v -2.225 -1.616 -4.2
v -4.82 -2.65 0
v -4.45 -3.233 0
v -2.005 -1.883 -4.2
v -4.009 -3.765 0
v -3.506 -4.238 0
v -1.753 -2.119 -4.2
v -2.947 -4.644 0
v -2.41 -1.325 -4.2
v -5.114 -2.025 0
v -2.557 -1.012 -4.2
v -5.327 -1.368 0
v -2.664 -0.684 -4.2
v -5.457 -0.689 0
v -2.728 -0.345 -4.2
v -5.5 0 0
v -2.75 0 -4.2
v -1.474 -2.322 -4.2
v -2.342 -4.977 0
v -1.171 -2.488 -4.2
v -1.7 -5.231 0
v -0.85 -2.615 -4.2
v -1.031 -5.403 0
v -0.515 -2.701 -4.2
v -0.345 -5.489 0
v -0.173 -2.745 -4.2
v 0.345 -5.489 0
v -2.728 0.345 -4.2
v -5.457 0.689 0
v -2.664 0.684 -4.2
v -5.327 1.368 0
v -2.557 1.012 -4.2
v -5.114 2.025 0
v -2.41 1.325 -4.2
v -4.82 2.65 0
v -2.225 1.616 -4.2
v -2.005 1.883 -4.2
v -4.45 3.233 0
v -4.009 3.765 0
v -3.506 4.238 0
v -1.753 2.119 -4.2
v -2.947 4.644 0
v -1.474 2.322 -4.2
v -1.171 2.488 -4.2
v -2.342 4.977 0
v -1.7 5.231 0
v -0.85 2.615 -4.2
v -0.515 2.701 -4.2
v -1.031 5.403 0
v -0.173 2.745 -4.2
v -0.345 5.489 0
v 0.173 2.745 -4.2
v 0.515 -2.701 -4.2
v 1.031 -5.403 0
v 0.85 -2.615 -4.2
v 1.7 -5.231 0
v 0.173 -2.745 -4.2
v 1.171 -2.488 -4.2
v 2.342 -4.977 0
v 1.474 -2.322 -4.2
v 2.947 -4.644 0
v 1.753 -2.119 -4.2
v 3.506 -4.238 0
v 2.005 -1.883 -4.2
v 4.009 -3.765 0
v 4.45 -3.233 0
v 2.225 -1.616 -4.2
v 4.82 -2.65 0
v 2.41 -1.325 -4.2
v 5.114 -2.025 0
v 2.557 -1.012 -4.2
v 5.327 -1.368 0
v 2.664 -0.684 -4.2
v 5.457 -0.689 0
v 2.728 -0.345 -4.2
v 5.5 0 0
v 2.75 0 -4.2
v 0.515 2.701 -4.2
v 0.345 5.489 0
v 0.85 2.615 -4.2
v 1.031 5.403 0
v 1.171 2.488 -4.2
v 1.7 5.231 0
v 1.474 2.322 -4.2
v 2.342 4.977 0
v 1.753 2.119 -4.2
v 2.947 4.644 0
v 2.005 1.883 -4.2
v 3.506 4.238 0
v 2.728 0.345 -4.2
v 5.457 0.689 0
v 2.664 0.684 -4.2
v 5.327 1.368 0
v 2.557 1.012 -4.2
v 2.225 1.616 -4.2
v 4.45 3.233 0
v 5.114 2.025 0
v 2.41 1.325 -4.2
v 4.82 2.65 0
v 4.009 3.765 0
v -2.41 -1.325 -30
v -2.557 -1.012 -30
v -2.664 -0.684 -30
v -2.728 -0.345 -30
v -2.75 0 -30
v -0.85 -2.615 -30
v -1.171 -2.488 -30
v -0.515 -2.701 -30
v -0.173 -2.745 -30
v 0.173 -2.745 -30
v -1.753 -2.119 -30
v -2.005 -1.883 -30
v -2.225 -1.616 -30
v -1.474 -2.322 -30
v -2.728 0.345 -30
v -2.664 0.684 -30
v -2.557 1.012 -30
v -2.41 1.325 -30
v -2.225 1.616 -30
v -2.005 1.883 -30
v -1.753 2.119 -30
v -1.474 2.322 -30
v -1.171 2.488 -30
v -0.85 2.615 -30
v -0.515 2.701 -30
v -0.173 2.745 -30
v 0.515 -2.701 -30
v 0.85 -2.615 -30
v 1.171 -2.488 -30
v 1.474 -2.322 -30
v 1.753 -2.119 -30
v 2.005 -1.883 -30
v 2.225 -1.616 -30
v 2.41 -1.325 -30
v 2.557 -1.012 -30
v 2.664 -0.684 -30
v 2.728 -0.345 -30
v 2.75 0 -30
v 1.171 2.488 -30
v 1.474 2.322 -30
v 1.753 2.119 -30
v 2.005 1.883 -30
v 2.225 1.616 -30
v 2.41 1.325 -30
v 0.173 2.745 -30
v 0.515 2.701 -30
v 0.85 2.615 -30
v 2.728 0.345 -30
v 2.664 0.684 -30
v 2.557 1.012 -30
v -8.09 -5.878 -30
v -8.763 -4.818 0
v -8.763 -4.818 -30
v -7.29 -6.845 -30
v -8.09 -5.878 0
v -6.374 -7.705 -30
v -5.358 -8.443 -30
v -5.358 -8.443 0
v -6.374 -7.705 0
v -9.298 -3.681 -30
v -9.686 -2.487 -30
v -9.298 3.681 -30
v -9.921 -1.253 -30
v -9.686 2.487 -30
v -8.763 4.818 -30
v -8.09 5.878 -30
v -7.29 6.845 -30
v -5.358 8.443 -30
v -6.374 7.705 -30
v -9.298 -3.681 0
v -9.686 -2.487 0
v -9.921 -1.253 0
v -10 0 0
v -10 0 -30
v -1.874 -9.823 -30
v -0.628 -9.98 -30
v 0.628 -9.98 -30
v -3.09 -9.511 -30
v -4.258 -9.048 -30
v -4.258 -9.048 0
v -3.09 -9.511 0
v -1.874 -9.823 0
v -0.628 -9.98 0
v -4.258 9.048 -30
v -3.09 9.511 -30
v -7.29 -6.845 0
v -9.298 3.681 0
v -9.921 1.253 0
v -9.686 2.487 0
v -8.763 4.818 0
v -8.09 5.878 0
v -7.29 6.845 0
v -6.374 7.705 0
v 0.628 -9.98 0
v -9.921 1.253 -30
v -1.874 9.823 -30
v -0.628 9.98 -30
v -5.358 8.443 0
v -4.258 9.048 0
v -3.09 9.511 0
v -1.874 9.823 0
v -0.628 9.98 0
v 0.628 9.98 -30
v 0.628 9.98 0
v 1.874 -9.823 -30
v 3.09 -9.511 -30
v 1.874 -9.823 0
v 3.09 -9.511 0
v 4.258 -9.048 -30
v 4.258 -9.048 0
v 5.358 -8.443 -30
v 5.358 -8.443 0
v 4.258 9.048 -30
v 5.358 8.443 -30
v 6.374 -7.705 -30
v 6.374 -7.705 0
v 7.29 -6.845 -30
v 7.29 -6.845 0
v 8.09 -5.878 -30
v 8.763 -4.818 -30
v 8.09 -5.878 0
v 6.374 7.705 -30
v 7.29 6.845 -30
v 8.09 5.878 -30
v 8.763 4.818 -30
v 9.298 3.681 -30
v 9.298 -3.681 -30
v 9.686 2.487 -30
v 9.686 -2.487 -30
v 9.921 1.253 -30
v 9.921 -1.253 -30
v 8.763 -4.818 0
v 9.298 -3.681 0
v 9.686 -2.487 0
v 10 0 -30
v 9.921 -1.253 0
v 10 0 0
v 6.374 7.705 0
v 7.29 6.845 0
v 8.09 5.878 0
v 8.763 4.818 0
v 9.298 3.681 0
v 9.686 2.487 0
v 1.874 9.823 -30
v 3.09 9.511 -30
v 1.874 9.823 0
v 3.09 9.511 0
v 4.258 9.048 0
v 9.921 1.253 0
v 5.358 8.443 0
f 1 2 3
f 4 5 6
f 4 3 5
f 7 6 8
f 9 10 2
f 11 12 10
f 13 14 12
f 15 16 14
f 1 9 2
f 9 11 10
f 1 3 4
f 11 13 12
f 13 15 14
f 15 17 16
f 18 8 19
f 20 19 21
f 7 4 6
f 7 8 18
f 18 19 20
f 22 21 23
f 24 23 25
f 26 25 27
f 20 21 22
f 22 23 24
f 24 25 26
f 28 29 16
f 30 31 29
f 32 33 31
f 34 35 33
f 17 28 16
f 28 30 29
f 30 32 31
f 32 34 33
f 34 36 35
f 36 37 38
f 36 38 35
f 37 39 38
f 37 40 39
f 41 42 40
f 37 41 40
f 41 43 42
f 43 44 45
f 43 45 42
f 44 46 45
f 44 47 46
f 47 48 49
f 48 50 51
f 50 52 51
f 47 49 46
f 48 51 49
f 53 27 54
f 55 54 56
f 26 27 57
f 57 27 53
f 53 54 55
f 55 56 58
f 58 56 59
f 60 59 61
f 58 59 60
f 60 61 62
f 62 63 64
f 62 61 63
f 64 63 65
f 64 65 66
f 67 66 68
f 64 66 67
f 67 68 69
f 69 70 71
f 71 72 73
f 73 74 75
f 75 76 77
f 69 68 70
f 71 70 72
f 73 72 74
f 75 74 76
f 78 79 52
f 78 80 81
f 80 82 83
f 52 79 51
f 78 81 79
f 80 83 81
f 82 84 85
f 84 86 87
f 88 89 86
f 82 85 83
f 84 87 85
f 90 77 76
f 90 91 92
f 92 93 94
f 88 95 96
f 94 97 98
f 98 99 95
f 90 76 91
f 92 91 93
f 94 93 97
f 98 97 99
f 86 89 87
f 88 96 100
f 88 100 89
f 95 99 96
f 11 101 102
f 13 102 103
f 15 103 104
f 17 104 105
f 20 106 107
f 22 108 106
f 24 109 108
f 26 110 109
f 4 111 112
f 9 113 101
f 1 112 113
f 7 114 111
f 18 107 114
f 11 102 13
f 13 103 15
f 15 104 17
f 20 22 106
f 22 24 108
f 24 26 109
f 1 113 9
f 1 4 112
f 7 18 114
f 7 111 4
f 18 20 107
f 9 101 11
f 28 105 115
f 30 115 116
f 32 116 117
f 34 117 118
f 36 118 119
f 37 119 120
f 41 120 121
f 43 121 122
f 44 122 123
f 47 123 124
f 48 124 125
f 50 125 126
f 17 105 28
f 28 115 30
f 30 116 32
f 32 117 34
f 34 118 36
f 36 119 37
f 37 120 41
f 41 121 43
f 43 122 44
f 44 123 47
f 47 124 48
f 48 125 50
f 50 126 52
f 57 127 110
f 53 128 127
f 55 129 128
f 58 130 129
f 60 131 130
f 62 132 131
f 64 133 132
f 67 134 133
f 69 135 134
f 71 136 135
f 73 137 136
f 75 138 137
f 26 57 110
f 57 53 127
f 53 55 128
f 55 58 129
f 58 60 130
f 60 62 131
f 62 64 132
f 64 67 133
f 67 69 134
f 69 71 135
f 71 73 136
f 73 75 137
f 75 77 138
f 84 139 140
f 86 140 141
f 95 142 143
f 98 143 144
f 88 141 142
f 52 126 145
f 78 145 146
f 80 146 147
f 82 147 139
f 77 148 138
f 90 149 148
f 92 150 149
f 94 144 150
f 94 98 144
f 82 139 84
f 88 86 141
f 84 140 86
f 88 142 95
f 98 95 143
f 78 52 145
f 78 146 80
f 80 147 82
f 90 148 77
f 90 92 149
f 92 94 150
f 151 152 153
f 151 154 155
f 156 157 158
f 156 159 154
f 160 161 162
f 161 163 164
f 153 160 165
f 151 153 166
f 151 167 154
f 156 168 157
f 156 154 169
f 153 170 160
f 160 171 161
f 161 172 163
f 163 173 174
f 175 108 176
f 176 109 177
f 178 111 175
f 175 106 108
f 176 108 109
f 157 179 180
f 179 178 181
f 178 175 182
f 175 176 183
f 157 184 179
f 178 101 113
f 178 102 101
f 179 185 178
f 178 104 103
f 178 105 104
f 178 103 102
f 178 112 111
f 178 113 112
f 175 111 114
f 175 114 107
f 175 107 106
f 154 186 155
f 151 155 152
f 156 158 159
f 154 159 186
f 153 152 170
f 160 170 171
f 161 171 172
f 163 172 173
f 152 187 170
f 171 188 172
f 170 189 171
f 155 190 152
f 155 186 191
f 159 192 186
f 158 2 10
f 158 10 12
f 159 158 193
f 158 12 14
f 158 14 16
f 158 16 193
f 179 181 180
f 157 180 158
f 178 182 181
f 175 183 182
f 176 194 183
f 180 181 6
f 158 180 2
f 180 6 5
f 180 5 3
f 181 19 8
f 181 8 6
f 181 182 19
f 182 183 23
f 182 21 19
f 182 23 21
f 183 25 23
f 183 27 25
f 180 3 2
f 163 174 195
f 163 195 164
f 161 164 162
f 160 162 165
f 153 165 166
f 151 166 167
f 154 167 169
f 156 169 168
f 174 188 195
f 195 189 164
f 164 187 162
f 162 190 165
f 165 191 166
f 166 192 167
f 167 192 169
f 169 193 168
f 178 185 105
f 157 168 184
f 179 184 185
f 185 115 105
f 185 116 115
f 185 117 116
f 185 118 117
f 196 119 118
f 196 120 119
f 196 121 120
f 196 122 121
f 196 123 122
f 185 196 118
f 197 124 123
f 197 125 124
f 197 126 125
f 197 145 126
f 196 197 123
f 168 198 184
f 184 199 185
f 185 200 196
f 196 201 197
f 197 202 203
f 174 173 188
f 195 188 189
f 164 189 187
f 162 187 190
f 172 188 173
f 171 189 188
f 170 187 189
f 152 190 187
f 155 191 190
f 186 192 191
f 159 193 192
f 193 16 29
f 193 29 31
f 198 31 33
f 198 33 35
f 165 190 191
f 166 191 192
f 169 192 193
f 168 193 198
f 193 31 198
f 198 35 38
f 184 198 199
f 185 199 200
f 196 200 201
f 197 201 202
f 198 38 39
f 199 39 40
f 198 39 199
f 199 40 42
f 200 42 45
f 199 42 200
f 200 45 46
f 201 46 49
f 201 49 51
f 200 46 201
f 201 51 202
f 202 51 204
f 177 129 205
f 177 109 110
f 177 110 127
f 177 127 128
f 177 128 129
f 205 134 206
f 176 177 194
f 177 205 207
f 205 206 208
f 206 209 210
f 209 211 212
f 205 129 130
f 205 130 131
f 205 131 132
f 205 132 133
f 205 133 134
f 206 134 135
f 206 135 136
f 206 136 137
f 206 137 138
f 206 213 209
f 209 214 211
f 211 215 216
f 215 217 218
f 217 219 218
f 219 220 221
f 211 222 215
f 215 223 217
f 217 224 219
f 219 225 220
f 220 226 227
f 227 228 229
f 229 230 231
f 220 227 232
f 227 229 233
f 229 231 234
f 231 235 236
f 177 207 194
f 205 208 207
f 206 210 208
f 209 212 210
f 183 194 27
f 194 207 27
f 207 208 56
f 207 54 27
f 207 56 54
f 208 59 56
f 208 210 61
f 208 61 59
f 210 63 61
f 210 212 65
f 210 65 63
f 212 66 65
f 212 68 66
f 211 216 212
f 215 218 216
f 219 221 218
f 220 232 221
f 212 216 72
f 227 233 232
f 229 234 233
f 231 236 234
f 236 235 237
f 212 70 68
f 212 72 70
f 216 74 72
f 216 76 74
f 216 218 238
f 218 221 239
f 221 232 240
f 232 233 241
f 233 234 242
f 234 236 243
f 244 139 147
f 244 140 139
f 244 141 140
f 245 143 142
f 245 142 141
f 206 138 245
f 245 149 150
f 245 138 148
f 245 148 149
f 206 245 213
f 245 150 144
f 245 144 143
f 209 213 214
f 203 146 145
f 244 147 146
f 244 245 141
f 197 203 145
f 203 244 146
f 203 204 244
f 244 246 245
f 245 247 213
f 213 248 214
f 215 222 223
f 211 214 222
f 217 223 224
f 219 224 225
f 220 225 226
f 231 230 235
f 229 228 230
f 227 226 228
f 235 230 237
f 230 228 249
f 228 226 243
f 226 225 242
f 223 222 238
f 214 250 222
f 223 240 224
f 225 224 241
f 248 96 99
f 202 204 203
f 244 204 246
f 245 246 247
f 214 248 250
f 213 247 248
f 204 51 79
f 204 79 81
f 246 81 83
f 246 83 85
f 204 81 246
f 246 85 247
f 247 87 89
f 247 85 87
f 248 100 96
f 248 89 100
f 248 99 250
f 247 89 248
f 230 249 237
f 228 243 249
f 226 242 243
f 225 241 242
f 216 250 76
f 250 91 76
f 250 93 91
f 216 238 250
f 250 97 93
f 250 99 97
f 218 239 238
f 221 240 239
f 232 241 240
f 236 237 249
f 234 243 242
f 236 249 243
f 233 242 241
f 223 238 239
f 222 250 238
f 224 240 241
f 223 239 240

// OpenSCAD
$fn = 50;


difference() {
	union() {
		translate(v = [0, 0, -30.0000000000]) {
			cylinder(h = 30, r = 10.0000000000);
		}
	}
	union() {
		translate(v = [0, 0, 0]) {
			rotate(a = [0, 0, 0]) {
				difference() {
					union() {
						translate(v = [0, 0, -33.0000000000]) {
							cylinder(h = 33, r = 2.2500000000);
						}
						translate(v = [0, 0, -4.2000000000]) {
							cylinder(h = 4.2000000000, r1 = 2.7500000000, r2 = 5.5000000000);
						}
						translate(v = [0, 0, -33.0000000000]) {
							cylinder(h = 33, r = 2.7500000000);
						}
						translate(v = [0, 0, -33.0000000000]) {
							cylinder(h = 33, r = 2.2500000000);
						}
					}
					union();
				}
			}
		}
	}
}
